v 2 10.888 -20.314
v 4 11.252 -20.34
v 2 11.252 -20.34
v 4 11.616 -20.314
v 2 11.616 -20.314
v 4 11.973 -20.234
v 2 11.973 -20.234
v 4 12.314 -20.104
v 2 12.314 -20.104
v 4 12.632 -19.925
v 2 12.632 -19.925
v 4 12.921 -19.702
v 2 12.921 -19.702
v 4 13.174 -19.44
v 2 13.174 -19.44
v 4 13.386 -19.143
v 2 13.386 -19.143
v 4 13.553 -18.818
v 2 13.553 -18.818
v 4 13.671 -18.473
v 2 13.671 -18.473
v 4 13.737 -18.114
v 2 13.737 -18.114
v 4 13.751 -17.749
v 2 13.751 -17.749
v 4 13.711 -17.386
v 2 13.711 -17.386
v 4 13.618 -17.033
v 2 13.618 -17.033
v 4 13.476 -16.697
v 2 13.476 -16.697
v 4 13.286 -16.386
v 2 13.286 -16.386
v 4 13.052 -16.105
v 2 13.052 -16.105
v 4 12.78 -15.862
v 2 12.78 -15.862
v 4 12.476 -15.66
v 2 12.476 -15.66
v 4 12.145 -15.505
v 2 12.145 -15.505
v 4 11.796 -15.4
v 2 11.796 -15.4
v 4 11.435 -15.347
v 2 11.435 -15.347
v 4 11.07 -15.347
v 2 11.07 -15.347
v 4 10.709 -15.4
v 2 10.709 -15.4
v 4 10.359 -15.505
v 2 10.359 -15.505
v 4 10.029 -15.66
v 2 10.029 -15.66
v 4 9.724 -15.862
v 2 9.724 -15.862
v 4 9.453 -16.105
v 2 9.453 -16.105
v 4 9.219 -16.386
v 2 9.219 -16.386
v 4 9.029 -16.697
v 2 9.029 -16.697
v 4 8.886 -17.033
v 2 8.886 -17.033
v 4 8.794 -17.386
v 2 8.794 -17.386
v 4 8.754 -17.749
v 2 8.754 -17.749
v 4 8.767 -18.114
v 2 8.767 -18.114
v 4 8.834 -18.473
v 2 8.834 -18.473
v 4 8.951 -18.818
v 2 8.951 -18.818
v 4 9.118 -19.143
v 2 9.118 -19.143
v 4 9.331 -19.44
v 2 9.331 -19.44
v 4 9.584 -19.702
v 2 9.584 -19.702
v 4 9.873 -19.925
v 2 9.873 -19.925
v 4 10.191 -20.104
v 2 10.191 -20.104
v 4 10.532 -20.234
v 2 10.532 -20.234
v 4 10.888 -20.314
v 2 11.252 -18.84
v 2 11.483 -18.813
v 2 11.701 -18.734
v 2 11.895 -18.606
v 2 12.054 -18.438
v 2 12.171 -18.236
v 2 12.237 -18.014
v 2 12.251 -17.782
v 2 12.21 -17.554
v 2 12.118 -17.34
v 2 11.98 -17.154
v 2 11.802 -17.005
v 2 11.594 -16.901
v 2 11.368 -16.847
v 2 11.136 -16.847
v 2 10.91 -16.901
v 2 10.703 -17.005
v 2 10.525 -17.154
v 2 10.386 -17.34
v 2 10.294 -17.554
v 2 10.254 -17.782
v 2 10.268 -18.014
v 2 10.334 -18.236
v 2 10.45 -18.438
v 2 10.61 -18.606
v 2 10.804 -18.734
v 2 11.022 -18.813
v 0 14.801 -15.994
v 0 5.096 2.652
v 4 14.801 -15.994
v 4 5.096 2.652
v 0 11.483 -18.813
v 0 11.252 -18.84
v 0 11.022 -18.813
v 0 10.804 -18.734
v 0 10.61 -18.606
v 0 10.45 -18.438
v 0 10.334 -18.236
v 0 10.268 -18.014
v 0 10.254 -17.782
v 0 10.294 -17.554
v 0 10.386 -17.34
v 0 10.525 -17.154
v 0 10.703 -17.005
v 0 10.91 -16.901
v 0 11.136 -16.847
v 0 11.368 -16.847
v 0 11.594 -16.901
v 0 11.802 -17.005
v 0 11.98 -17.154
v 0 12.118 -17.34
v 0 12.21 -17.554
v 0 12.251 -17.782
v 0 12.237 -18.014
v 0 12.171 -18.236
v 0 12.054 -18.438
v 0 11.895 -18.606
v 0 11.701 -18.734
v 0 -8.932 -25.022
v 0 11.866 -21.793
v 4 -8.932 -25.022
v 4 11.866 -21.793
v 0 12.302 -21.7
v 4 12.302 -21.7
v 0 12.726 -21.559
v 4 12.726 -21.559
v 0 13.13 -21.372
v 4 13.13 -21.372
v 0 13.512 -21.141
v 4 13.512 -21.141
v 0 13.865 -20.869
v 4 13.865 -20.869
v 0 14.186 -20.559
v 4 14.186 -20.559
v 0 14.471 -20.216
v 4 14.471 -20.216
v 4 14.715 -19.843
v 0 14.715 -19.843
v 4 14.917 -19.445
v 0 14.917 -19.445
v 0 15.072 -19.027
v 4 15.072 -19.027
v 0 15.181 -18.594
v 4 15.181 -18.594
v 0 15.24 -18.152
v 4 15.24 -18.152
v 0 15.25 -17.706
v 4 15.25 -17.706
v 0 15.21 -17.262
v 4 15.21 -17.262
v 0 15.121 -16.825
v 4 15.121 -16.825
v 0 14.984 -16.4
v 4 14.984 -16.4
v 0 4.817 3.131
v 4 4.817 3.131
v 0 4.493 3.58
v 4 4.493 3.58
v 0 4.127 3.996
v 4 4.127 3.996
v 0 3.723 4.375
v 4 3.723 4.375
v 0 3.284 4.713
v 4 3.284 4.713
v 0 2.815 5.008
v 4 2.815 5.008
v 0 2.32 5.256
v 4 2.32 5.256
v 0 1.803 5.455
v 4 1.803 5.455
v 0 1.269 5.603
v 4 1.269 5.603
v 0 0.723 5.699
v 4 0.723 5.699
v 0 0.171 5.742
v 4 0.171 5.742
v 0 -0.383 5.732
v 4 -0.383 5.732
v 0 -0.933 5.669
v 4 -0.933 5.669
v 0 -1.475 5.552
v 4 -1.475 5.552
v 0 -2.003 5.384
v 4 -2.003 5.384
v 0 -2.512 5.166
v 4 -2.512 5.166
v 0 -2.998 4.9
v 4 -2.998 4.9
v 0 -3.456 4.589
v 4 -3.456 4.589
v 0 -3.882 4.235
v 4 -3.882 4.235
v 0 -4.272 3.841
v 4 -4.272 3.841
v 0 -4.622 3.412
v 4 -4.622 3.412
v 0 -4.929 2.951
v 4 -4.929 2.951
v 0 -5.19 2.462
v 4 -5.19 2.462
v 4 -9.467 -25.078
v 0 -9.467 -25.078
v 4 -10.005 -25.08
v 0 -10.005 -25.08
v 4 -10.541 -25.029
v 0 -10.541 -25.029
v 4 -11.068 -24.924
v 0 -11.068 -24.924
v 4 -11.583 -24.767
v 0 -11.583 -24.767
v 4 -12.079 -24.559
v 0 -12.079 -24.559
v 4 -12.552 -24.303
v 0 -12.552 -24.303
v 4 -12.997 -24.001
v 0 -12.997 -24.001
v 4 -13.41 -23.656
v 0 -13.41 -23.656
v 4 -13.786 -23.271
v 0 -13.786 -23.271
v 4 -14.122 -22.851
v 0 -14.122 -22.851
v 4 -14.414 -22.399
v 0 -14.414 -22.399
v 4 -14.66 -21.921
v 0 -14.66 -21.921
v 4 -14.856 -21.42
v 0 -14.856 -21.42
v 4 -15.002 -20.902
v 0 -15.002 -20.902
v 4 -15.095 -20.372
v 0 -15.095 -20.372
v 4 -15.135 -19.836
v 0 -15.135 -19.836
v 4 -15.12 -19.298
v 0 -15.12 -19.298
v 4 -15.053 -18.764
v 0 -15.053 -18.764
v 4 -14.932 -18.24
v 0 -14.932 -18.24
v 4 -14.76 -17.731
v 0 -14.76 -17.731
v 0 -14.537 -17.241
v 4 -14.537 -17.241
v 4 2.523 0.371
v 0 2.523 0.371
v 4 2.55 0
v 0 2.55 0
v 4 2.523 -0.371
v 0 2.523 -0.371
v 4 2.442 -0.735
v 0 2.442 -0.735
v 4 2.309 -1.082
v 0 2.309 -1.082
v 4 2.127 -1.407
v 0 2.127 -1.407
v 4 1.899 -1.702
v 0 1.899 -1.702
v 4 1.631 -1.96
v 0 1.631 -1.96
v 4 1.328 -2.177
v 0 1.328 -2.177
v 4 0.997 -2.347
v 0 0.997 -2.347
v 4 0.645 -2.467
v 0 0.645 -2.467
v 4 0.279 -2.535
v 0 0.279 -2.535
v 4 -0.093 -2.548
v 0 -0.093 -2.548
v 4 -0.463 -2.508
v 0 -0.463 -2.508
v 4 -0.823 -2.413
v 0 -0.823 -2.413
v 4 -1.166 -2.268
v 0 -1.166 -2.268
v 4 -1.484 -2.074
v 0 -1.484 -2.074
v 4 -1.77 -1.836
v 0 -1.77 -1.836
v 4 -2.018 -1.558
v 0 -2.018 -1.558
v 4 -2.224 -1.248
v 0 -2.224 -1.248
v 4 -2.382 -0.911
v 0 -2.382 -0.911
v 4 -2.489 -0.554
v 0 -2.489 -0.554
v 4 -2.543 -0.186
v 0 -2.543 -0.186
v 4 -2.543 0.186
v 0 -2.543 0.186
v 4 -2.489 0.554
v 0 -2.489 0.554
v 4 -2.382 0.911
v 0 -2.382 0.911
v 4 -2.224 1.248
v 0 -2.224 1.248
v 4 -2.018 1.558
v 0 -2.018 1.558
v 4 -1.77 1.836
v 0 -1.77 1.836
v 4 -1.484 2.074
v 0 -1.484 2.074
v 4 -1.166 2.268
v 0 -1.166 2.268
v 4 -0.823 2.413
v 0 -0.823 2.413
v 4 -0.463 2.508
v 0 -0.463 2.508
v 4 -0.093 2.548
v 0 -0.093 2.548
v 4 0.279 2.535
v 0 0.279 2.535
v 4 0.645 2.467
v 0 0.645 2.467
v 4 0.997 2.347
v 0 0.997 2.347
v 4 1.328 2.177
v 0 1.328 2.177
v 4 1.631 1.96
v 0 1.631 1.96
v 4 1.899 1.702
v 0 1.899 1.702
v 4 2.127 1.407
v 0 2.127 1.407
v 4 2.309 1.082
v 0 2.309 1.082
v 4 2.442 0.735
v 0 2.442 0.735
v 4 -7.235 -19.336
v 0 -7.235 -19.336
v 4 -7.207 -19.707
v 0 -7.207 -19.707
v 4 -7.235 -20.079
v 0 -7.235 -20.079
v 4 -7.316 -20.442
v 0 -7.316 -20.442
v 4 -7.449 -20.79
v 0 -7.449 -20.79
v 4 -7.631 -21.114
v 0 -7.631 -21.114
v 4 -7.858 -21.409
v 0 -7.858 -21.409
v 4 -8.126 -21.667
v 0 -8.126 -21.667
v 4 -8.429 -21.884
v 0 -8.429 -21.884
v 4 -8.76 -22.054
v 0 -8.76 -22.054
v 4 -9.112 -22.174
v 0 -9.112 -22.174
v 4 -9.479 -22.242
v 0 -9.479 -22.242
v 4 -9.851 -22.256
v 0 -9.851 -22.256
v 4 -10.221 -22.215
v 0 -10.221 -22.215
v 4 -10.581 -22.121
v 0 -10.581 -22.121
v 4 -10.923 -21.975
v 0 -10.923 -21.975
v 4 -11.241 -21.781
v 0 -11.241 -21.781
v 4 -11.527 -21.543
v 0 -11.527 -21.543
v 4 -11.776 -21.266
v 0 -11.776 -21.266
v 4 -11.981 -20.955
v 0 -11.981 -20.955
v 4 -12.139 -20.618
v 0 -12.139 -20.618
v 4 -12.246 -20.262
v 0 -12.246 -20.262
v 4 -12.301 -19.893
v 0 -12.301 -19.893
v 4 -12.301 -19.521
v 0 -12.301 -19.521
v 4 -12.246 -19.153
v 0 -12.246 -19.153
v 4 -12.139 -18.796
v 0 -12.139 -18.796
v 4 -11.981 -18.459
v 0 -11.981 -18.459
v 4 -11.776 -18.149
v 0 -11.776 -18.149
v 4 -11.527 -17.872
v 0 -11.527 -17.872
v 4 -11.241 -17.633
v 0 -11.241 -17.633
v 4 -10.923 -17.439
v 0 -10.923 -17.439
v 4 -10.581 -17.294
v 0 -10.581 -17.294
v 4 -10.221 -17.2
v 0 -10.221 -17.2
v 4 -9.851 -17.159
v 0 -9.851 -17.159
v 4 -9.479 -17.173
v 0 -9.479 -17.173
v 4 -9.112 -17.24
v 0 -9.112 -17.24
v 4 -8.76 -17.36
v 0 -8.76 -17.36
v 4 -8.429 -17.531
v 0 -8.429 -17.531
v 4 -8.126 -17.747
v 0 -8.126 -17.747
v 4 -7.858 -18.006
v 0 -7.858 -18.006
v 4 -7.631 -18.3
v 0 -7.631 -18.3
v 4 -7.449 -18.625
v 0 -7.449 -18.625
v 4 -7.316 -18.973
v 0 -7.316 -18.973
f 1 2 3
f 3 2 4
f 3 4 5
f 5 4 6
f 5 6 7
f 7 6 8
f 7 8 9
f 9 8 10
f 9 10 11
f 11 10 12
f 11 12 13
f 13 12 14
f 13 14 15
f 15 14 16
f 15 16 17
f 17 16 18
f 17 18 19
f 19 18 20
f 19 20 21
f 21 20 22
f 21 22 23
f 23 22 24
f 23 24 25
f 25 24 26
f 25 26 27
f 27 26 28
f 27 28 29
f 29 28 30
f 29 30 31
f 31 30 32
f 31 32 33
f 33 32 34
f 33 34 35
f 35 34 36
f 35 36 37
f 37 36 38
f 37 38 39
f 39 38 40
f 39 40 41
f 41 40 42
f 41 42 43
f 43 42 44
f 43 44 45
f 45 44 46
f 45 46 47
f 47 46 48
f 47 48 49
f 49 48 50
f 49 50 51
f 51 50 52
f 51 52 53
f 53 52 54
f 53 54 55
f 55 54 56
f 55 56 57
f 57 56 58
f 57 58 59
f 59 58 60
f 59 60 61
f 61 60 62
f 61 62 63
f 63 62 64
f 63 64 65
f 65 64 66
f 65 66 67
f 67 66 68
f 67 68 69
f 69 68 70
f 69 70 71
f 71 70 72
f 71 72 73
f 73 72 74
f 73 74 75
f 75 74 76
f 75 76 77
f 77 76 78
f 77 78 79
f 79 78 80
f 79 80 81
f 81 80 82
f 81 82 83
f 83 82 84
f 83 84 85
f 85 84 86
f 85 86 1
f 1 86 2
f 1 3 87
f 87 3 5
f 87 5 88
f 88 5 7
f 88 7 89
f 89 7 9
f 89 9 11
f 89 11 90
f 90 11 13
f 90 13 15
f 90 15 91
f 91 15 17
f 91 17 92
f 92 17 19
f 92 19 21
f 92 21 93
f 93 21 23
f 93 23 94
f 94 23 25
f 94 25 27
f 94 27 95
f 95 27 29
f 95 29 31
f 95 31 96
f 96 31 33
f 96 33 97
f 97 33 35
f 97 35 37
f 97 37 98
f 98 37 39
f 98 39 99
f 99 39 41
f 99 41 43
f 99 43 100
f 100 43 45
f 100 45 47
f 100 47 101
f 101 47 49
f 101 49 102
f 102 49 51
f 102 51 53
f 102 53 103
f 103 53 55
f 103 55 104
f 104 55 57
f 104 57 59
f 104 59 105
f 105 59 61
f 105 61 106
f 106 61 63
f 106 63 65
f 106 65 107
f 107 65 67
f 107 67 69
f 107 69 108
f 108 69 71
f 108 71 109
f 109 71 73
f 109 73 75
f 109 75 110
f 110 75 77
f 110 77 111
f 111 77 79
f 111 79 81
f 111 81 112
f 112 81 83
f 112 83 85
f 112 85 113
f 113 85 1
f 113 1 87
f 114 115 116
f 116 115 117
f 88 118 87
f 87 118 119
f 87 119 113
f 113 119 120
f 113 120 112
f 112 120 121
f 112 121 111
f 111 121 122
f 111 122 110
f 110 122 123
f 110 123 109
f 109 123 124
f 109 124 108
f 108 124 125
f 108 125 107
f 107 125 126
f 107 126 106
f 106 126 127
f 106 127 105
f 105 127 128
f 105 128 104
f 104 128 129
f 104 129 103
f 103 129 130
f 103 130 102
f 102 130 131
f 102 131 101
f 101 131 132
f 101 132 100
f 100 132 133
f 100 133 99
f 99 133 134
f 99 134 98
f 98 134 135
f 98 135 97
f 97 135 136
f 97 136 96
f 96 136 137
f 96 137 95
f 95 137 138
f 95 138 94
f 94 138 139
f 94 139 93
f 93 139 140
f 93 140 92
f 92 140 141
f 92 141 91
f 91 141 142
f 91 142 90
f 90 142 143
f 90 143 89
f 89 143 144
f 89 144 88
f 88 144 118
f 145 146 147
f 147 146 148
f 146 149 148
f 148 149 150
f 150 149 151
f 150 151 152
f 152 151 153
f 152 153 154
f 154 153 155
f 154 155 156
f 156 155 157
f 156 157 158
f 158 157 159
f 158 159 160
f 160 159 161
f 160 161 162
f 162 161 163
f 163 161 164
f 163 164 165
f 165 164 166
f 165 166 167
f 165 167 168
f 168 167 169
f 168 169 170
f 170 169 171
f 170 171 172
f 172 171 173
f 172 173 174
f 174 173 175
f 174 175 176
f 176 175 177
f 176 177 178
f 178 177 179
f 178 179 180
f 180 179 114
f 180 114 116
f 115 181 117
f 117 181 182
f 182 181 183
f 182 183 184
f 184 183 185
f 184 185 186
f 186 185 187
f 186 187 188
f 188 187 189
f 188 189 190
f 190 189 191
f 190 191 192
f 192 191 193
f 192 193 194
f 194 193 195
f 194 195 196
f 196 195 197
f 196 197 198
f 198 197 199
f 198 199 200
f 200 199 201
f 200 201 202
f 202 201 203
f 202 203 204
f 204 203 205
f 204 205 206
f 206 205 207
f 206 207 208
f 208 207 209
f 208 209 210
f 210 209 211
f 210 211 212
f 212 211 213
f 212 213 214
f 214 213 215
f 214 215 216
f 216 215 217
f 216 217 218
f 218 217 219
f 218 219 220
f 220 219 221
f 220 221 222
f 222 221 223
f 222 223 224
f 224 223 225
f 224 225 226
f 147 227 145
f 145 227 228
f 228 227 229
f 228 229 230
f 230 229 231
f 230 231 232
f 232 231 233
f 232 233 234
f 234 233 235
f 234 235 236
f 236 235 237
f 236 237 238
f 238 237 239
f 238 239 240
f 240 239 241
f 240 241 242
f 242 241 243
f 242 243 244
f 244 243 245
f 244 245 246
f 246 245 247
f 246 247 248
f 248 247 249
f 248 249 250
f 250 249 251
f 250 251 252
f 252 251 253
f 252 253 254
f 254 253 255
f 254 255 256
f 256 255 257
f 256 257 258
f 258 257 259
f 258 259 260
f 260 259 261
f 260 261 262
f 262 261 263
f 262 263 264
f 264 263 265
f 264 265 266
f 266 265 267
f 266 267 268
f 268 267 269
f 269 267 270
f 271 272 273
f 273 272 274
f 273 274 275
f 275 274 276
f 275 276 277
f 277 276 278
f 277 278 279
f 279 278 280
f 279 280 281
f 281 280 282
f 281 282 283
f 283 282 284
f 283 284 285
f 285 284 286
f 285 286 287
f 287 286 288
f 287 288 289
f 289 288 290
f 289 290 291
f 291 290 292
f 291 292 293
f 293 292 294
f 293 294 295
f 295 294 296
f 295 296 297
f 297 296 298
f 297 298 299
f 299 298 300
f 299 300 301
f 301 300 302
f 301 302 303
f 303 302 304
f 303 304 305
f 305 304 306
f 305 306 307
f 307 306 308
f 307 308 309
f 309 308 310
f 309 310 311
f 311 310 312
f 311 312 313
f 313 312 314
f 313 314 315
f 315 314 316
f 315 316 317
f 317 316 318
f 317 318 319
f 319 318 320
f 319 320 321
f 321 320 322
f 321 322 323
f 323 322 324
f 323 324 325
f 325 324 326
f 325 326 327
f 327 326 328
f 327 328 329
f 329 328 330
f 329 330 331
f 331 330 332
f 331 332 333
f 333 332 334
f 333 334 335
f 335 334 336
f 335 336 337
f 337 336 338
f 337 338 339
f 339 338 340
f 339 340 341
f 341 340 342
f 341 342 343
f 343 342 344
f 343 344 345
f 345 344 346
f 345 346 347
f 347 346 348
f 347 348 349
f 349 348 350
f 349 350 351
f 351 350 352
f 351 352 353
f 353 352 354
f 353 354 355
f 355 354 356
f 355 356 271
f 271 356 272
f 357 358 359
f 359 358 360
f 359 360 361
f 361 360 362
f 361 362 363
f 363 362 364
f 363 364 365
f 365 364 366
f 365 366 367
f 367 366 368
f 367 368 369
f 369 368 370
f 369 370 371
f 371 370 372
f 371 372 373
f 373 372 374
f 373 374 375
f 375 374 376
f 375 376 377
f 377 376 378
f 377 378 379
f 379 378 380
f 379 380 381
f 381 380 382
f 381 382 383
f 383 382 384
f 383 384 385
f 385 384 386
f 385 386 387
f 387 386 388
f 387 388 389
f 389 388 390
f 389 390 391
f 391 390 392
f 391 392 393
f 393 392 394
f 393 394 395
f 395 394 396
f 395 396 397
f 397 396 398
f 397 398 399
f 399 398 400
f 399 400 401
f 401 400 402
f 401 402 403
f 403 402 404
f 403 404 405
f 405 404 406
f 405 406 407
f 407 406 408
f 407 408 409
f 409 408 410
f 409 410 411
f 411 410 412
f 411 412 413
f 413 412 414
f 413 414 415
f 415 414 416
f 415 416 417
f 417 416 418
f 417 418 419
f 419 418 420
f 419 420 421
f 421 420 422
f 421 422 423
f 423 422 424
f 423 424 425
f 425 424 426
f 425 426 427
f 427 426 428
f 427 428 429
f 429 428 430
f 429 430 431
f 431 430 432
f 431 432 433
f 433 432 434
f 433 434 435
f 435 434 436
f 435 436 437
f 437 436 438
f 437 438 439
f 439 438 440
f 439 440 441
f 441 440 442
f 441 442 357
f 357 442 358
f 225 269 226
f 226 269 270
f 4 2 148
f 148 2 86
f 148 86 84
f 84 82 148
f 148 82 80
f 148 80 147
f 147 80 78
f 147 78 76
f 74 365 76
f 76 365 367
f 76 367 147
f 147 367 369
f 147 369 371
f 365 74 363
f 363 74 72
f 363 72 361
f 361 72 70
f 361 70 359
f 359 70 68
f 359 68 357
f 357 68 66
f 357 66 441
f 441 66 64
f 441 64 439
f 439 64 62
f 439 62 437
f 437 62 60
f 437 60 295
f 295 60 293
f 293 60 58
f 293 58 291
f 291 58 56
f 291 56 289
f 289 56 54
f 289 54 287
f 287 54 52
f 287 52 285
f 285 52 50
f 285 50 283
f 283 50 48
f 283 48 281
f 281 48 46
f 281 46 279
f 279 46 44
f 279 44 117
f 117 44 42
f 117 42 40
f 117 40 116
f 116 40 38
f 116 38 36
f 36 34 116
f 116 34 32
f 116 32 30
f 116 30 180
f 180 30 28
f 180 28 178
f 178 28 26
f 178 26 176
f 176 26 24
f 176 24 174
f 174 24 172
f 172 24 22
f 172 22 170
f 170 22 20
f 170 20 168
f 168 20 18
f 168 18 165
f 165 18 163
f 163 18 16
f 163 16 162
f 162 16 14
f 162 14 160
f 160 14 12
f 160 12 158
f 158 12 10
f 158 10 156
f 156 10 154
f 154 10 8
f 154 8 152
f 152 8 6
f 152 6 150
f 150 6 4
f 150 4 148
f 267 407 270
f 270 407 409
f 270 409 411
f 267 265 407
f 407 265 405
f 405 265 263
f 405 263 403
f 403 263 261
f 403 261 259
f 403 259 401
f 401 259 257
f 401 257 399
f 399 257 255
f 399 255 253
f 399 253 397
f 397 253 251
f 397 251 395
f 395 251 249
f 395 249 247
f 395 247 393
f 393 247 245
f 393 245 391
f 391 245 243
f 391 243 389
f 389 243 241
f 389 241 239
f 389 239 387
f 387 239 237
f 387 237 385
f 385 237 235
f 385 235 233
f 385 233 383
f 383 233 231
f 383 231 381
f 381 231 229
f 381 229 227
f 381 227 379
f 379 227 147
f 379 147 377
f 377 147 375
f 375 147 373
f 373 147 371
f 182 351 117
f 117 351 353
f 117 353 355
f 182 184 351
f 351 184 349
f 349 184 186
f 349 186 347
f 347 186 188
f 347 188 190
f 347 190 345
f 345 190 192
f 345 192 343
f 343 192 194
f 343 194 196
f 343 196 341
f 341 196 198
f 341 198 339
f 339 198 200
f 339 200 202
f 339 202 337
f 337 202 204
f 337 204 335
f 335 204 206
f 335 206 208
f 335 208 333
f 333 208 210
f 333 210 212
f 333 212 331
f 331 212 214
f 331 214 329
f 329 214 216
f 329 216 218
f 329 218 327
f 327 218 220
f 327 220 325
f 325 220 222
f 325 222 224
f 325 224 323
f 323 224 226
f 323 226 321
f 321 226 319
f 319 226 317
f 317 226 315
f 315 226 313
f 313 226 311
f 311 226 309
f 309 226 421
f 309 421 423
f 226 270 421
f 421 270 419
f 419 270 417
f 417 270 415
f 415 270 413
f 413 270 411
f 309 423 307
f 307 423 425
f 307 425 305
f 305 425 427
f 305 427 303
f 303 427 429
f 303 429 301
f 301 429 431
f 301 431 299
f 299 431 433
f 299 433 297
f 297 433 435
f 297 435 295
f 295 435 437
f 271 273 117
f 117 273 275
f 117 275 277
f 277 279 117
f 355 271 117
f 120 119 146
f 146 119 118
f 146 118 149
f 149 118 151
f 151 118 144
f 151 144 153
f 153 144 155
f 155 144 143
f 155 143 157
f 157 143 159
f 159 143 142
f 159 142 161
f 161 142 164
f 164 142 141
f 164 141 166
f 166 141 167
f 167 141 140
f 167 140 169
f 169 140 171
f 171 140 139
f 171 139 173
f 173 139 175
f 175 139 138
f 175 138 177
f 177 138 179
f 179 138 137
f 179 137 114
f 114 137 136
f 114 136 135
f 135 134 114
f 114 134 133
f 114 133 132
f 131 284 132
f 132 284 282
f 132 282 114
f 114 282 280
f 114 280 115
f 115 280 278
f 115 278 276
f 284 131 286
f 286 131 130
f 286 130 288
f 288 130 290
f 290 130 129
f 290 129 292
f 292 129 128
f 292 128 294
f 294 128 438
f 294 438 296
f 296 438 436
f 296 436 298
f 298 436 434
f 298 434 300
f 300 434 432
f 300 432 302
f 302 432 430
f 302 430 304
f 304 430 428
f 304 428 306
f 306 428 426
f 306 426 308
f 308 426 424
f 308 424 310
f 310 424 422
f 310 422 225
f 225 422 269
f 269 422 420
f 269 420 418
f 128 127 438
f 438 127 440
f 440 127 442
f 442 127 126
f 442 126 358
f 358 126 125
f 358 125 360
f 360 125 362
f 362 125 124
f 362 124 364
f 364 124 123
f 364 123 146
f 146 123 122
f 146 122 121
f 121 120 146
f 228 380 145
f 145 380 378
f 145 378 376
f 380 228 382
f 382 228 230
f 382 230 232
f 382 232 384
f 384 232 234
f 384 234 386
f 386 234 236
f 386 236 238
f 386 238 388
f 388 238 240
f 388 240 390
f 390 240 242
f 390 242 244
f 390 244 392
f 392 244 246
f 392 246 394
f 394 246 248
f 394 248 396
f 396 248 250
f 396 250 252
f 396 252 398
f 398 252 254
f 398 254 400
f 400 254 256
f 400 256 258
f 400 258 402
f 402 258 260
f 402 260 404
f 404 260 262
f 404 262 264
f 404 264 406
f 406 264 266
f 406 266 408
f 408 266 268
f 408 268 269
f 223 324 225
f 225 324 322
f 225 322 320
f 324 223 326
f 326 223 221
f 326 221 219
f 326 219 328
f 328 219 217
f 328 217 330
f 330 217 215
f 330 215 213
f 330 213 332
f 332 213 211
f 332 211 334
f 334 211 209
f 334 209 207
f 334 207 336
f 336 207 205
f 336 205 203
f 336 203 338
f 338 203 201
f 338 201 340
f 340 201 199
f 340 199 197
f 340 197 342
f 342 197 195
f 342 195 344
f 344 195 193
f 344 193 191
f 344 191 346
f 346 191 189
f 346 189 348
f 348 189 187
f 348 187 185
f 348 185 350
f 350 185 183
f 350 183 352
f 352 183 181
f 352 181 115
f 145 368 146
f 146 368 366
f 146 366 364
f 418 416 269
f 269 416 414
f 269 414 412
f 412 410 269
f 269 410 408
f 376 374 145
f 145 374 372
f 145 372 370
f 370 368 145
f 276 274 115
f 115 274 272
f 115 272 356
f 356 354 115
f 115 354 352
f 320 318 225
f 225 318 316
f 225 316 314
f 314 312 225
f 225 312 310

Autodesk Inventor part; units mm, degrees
ref_plane "YZ Plane" through (0, 0, 0) normal (1, 0, 0) x (0, 1, 0)
ref_plane "XZ Plane" through (0, 0, 0) normal (0, 1, 0) x (-1, 0, 0)
ref_plane "XY Plane" through (0, 0, 0) normal (0, 0, 1) x (1, 0, 0)
sketch "Sketch1" plane through (0, 0, 0) normal (1, 0, 0) x (0, 1, 0)
  circle A0 centre (-9.7574, -19.7073) radius 1.55 construction
  circle A1 centre (0, 0) radius 1.55 construction
  circle A2 centre (-9.7574, -19.7073) radius 2.55
  circle A3 centre (0, 0) radius 2.55
  line L0 (-6.0684, -24.2876) -> (12.7398, 12.1607) construction
  arc A4 (-12.2239, -24.4871) -> (-4.9776, -22.1738) centre (-9.7574, -19.7073) ccw
  circle A5 centre (0, 0) radius 5.7448
  line L1 (-4.9776, -22.1738) -> (5.1052, -2.6344)
  arc A6 (-4.9776, -22.1738) -> (-12.2239, -24.4871) centre (-9.7574, -19.7073) ccw
  line L2 (-14.5372, -17.2408) -> (-5.1904, 2.4623)
  line L3 (0, 0) -> (0, -27.0135) construction
  line L4 (0, 0) -> (-9.7574, -19.7073) construction
  point P0 (-10.1101, -25.5779)
  dimension "d0" = 5.1
  dimension "d1" = 5.1
  dimension "d3" = 11.4897
  dimension "d4" = 5.3787
  dimension "d5" = 21.8076
  dimension "d6" = 21.9875
extrude "Extrusion1" add sketch "Sketch1" along normal blind 4
sketch "Sketch2" plane through (4, 0, 0) normal (1, 0, 0) x (0, 0, -1)
  arc A0 (17.2408, -14.5372) -> (22.1738, -4.9776) centre (19.7073, -9.7574) ccw projected
  line L0 (22.1738, -4.9776) -> (2.6344, 5.1052) projected
  arc A1 (2.6344, 5.1052) -> (-2.4623, -5.1904) centre (0, 0) ccw projected
  line L1 (-2.4623, -5.1904) -> (17.2408, -14.5372) construction
  circle A2 centre (19.7073, -9.7574) radius 2.55 construction
  circle A3 centre (0, 0) radius 2.55 construction
  circle A4 centre (19.7073, -9.7574) radius 2.55 construction
  line L2 (-0.0042, 0.0021) -> (19.7073, -9.7574) construction
  circle A5 centre (17.8404, 11.2524) radius 1
  circle A6 centre (17.8404, 11.2524) radius 4
  line L3 (15.9937, 14.8006) -> (-2.6523, 5.0959)
  arc A7 (2.6344, 5.1052) -> (-2.4623, -5.1904) centre (0, 0) ccw projected
  line L4 (21.793, 11.8661) -> (25.0223, -8.9322)
  line L5 (-11.8641, -11.015) -> (9.5186, 32.1722)
  dimension "d11" = 2
  dimension "d12" = 8
  dimension "d18" = 16.7401
  dimension "d19" = 18
extrude "Extrusion2" add sketch "Sketch2" against normal up to surface (4 mm away)
sketch "Sketch3" plane through (4, 0, 0) normal (1, 0, 0) x (0, 0, -1)
  circle A0 centre (17.8404, 11.2524) radius 1 projected
  circle A1 centre (17.8404, 11.2524) radius 2.5
  point P0 (0, 0)
  dimension "d15" = 5
extrude "Extrusion3" cut sketch "Sketch3" against normal blind 2
properties part number "Kauri modular camera mount mini" material "Brass, Soft Yellow"
